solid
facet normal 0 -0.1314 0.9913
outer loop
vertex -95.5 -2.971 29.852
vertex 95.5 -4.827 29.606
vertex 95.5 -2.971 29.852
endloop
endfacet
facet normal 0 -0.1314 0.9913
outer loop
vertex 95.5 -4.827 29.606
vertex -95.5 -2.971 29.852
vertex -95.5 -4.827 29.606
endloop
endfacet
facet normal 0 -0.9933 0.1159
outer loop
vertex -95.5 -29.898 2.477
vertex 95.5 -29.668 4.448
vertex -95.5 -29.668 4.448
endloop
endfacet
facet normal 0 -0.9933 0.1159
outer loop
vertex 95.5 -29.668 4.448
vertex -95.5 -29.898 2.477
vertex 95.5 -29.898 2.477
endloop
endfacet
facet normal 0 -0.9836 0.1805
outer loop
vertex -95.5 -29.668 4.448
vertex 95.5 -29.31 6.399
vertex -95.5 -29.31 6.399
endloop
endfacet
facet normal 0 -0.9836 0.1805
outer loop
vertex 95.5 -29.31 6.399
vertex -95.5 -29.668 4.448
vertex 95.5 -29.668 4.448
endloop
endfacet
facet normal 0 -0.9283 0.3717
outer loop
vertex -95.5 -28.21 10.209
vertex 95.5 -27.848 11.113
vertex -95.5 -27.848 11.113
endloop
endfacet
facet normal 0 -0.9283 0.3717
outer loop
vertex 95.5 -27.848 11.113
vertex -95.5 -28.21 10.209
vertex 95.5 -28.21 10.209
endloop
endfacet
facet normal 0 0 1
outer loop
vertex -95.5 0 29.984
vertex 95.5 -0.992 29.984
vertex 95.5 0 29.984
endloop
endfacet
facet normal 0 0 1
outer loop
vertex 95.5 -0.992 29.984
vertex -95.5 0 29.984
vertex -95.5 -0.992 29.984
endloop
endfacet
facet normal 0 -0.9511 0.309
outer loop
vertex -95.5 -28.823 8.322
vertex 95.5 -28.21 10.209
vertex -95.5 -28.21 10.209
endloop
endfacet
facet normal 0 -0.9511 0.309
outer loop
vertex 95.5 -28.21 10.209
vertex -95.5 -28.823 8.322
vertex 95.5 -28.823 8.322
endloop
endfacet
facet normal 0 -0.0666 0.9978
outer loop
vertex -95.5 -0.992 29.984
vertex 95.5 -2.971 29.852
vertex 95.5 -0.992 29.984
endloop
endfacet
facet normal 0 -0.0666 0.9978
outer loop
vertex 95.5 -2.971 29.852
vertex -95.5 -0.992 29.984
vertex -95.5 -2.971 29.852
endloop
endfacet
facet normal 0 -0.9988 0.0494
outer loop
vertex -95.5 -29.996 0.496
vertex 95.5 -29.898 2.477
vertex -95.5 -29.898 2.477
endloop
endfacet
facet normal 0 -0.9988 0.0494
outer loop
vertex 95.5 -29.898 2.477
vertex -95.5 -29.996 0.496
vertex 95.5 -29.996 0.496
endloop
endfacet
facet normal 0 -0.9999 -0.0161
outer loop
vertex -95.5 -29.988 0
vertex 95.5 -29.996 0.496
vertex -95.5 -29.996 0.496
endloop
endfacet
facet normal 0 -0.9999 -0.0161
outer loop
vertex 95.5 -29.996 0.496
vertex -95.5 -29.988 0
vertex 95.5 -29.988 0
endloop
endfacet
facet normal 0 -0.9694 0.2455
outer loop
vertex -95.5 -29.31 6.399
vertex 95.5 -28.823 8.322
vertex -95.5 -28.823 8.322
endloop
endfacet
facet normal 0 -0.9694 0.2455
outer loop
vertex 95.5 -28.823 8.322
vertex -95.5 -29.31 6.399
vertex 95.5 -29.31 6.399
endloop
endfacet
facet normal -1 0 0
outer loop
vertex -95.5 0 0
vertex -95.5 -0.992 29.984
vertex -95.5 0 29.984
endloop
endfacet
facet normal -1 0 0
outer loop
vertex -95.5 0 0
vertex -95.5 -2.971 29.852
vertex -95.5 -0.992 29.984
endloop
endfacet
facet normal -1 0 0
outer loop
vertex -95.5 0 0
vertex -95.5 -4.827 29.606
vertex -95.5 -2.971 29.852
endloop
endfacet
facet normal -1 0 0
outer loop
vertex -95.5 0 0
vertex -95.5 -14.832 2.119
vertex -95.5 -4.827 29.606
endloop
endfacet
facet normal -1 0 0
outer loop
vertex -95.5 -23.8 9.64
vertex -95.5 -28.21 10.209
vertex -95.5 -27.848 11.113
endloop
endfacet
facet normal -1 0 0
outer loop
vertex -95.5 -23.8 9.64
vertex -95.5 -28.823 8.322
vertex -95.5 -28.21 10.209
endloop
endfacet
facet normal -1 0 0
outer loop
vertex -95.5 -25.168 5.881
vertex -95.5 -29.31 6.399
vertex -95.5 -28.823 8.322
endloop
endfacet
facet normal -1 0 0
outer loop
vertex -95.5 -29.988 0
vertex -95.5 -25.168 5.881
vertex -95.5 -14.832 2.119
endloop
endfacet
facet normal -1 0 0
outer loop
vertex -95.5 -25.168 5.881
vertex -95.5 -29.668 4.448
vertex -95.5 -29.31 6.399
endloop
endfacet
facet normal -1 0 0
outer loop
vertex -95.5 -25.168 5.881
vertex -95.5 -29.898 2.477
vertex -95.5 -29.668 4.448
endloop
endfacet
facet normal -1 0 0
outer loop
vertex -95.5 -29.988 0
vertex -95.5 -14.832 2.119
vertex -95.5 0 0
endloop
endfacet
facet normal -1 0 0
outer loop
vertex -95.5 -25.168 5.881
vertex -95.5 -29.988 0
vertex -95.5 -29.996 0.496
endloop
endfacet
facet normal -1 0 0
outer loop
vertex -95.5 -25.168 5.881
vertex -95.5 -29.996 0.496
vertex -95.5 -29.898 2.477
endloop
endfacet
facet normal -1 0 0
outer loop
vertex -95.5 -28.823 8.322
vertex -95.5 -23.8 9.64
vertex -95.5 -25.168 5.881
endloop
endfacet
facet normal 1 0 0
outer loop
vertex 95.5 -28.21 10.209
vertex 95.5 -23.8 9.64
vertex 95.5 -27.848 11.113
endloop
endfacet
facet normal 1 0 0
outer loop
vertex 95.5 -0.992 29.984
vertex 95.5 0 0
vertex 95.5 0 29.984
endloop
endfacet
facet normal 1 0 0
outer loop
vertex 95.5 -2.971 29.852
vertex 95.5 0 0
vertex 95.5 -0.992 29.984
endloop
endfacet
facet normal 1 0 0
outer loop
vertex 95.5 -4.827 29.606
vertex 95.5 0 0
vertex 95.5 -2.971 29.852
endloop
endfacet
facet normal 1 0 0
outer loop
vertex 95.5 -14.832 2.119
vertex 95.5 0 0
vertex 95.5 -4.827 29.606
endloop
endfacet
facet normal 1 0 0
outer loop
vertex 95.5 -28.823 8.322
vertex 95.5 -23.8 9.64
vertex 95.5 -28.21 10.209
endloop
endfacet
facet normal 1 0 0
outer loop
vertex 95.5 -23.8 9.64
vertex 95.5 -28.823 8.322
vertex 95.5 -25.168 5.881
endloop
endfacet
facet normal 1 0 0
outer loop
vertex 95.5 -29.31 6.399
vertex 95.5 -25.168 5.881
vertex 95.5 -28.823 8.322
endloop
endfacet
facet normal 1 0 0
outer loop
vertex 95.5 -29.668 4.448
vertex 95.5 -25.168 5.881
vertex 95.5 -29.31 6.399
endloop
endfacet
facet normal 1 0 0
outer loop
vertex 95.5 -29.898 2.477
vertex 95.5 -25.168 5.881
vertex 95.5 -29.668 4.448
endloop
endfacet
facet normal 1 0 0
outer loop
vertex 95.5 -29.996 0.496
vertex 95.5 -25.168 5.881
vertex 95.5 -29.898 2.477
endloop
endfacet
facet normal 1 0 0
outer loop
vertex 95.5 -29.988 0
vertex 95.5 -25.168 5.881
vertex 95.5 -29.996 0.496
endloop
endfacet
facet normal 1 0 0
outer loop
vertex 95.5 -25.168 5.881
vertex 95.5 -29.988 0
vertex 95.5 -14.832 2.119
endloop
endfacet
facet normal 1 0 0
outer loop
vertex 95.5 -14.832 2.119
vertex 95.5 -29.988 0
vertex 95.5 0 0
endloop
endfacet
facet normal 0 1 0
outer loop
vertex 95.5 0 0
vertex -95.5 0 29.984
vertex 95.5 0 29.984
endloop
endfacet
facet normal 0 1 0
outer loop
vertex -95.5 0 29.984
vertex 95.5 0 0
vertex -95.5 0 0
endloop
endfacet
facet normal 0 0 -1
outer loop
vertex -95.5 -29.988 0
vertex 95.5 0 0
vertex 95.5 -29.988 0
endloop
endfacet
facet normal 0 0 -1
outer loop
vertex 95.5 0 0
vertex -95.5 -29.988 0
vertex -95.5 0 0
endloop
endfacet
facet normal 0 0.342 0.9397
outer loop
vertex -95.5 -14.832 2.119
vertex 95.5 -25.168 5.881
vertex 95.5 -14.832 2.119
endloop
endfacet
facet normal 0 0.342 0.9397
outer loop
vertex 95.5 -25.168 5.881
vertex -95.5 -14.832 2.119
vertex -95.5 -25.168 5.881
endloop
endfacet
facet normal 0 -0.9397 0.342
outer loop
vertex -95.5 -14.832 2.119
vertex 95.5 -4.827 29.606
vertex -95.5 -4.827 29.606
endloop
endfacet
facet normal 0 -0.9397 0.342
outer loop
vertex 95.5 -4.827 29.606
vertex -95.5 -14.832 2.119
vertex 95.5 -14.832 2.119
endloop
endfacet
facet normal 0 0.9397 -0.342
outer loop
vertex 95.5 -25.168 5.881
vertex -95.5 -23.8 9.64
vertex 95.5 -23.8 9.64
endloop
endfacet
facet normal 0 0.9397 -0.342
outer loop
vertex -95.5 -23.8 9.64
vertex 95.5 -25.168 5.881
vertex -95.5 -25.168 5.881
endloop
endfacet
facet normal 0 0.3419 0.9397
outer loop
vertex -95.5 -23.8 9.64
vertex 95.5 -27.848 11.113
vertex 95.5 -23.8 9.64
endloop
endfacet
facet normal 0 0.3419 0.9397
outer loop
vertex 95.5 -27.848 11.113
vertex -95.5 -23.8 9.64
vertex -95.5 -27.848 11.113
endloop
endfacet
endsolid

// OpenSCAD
TROUGH = 11;
LENGTH = 191;
HEIGHT = 30;
SLANT = -20;
LIP = 4;
E = 0.1;
E2 = 2 * E;

module slug() {
    difference() {
        rotate([0, 90, 0])
            cylinder(h=LENGTH, r=HEIGHT, center=true, $fa = 1);
        translate([0, HEIGHT, 0])
            cube([LENGTH + E2, 2 * HEIGHT, 2 * HEIGHT], center=true);
        translate([0, 0, -HEIGHT])
            cube([LENGTH + E2, 2 * HEIGHT, 2 * HEIGHT], center=true);
    }
}

module slot() {
    rotate([SLANT, 0, 0]) {
        translate([0, 0, HEIGHT])
            cube([LENGTH + E2, TROUGH, HEIGHT * 2], center=true);
        translate([0, - TROUGH + E, HEIGHT + LIP])
            cube([LENGTH + E2, TROUGH, HEIGHT * 2], center=true);
    }
}

difference() {
    slug();
    translate([0, -20, 4])
        slot();
}
